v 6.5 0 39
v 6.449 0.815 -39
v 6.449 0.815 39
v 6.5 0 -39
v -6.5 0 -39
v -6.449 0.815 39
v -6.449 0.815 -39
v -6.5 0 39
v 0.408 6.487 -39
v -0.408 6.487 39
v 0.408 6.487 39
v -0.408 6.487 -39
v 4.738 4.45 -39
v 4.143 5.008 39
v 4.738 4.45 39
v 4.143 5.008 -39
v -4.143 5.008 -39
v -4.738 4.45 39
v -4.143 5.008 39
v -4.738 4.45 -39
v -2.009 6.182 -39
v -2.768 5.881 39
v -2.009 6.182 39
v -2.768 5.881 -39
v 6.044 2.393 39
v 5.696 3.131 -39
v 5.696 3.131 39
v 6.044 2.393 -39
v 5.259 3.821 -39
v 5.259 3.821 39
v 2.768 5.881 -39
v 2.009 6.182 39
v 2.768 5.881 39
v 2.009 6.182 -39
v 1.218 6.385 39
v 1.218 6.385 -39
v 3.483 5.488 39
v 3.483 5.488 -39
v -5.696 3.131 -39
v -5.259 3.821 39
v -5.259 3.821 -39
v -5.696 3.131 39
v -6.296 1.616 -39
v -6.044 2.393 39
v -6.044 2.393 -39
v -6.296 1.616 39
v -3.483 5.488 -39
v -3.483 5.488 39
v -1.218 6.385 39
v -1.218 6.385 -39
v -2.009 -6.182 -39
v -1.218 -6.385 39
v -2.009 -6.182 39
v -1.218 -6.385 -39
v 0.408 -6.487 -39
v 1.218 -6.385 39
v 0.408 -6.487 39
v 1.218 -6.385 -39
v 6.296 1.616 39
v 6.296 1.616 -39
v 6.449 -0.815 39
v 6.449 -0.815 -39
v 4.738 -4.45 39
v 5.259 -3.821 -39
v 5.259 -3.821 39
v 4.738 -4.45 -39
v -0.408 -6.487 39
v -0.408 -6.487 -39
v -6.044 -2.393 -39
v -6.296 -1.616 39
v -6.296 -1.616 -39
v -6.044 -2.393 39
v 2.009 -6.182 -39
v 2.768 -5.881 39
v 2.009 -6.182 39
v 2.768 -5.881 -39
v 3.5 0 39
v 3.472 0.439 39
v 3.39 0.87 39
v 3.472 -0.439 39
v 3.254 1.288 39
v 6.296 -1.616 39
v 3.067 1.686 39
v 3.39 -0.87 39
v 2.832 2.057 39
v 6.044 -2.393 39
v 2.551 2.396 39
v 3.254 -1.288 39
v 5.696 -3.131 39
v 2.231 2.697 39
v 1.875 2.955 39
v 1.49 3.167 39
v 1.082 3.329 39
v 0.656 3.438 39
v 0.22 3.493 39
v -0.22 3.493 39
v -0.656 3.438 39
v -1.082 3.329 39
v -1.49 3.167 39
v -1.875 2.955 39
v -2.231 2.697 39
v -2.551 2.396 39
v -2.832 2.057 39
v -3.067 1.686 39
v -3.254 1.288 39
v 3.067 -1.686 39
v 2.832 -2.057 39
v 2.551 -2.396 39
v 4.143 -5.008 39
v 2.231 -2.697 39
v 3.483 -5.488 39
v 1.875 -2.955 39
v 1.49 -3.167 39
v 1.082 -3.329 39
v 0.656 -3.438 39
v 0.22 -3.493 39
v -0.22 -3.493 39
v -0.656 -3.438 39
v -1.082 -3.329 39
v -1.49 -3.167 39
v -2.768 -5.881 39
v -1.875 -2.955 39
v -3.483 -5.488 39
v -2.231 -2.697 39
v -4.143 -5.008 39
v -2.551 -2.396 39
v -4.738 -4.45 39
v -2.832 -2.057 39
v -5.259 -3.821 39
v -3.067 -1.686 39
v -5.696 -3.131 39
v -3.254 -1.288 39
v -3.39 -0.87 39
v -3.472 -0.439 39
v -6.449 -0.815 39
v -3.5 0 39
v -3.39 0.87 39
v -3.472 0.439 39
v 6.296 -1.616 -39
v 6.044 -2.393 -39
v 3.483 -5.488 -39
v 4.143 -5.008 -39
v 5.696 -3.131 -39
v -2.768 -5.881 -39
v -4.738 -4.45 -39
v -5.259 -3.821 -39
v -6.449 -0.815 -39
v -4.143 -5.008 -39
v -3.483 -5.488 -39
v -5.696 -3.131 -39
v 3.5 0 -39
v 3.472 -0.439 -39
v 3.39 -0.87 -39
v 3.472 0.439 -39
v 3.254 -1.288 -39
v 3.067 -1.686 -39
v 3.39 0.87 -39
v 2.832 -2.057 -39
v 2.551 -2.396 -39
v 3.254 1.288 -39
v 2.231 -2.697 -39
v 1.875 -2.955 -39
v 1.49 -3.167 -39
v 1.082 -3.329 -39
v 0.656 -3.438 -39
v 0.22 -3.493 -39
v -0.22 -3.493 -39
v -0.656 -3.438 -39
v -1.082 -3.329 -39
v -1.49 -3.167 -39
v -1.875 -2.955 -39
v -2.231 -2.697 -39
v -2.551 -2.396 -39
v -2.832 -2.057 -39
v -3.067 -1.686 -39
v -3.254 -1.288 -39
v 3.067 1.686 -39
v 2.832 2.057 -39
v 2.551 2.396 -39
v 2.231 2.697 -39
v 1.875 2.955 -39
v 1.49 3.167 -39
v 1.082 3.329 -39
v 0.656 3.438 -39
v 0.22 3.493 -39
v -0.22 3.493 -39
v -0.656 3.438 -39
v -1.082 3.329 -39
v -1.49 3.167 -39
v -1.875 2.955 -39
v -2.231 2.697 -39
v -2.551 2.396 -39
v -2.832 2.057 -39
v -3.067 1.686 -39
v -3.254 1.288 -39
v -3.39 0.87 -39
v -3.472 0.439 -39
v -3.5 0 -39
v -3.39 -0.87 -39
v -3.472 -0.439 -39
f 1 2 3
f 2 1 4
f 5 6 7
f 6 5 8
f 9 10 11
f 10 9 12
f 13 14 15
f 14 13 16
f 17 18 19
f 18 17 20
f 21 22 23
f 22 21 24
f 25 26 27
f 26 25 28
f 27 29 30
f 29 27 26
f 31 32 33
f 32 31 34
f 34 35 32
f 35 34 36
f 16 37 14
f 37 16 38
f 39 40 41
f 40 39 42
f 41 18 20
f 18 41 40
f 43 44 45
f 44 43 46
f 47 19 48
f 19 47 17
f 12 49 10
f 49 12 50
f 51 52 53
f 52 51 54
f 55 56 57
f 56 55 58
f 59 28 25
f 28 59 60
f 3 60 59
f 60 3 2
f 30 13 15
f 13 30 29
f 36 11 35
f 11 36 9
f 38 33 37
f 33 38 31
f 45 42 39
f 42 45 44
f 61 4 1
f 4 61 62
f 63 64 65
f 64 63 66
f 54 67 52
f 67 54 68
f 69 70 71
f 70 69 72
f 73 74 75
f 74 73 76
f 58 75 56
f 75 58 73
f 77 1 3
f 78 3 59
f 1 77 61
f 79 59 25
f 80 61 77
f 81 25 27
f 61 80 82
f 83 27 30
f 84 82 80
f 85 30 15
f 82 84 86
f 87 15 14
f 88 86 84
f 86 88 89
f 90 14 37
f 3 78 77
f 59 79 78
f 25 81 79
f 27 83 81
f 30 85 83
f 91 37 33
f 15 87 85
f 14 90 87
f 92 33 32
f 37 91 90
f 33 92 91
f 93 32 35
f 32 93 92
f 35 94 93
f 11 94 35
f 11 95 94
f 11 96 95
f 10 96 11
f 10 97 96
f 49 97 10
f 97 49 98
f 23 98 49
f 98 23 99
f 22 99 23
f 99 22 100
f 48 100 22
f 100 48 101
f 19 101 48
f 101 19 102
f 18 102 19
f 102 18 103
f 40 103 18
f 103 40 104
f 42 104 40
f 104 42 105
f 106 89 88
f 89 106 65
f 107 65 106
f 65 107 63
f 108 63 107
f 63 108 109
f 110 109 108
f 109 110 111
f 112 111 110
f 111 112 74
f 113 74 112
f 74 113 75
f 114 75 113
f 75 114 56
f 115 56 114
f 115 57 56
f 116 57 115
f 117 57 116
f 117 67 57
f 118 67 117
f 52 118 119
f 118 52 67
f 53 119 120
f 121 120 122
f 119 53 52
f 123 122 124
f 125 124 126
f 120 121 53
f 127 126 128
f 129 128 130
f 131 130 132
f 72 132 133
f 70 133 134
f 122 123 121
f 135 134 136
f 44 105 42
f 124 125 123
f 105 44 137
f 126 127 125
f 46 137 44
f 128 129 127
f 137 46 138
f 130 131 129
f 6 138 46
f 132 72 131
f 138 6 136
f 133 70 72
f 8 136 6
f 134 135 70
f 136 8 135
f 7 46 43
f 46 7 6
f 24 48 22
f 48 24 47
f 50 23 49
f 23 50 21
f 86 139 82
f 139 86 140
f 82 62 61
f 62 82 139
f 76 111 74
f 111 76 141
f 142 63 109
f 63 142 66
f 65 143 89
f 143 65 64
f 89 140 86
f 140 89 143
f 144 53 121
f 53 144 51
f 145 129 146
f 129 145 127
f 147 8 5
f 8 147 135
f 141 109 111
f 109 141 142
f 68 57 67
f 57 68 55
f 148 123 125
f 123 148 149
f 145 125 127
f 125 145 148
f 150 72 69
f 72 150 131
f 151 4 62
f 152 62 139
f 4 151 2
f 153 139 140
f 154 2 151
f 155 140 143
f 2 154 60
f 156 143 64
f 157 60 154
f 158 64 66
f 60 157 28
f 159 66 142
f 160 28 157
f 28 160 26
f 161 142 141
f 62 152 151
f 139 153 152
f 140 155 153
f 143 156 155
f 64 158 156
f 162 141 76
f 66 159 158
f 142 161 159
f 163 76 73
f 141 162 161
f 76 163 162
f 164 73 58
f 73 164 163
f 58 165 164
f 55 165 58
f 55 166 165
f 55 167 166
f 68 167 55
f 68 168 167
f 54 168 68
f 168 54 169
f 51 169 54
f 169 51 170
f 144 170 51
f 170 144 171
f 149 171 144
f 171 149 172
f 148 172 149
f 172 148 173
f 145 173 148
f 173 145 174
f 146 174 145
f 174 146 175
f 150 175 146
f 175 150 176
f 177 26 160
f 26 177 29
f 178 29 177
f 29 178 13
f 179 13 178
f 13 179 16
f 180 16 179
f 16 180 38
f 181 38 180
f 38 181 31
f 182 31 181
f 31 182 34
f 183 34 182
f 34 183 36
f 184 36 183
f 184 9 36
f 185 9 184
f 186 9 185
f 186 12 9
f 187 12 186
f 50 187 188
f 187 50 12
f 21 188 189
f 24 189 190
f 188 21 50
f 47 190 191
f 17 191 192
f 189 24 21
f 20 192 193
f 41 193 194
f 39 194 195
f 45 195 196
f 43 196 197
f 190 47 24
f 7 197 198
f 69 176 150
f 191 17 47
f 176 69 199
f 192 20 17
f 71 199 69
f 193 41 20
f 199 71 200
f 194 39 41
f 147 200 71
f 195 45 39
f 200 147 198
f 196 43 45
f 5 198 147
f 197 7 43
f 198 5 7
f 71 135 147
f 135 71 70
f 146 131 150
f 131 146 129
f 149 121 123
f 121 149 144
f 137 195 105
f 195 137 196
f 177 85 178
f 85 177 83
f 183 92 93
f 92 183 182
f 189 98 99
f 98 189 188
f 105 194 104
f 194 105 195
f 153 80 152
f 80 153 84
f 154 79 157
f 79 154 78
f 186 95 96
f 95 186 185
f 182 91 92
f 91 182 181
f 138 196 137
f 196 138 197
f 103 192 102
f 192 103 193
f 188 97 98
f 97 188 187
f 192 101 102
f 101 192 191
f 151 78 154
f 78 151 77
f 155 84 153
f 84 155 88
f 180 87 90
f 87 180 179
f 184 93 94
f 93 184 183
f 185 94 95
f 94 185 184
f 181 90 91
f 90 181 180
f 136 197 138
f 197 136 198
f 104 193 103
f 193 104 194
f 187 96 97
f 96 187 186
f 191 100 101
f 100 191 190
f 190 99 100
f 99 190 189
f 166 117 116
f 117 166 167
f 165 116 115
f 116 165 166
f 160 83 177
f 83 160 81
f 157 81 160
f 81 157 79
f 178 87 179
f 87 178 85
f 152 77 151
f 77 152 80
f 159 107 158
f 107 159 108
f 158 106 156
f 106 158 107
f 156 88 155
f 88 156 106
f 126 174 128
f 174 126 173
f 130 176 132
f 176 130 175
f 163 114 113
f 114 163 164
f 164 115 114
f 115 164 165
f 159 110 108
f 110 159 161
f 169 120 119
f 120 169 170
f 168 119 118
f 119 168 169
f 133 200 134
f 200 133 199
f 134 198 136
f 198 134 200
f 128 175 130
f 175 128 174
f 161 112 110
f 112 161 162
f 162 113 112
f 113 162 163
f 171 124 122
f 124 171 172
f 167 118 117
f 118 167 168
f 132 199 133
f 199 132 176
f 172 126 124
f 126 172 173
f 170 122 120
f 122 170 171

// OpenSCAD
$fn = 50;


difference() {
	union() {
		translate(v = [0, 0, -39.0000000000]) {
			cylinder(h = 78, r = 6.5000000000);
		}
	}
	union() {
		translate(v = [0, 0, -100.0000000000]) {
			cylinder(h = 200, r = 3.5000000000);
		}
	}
}
